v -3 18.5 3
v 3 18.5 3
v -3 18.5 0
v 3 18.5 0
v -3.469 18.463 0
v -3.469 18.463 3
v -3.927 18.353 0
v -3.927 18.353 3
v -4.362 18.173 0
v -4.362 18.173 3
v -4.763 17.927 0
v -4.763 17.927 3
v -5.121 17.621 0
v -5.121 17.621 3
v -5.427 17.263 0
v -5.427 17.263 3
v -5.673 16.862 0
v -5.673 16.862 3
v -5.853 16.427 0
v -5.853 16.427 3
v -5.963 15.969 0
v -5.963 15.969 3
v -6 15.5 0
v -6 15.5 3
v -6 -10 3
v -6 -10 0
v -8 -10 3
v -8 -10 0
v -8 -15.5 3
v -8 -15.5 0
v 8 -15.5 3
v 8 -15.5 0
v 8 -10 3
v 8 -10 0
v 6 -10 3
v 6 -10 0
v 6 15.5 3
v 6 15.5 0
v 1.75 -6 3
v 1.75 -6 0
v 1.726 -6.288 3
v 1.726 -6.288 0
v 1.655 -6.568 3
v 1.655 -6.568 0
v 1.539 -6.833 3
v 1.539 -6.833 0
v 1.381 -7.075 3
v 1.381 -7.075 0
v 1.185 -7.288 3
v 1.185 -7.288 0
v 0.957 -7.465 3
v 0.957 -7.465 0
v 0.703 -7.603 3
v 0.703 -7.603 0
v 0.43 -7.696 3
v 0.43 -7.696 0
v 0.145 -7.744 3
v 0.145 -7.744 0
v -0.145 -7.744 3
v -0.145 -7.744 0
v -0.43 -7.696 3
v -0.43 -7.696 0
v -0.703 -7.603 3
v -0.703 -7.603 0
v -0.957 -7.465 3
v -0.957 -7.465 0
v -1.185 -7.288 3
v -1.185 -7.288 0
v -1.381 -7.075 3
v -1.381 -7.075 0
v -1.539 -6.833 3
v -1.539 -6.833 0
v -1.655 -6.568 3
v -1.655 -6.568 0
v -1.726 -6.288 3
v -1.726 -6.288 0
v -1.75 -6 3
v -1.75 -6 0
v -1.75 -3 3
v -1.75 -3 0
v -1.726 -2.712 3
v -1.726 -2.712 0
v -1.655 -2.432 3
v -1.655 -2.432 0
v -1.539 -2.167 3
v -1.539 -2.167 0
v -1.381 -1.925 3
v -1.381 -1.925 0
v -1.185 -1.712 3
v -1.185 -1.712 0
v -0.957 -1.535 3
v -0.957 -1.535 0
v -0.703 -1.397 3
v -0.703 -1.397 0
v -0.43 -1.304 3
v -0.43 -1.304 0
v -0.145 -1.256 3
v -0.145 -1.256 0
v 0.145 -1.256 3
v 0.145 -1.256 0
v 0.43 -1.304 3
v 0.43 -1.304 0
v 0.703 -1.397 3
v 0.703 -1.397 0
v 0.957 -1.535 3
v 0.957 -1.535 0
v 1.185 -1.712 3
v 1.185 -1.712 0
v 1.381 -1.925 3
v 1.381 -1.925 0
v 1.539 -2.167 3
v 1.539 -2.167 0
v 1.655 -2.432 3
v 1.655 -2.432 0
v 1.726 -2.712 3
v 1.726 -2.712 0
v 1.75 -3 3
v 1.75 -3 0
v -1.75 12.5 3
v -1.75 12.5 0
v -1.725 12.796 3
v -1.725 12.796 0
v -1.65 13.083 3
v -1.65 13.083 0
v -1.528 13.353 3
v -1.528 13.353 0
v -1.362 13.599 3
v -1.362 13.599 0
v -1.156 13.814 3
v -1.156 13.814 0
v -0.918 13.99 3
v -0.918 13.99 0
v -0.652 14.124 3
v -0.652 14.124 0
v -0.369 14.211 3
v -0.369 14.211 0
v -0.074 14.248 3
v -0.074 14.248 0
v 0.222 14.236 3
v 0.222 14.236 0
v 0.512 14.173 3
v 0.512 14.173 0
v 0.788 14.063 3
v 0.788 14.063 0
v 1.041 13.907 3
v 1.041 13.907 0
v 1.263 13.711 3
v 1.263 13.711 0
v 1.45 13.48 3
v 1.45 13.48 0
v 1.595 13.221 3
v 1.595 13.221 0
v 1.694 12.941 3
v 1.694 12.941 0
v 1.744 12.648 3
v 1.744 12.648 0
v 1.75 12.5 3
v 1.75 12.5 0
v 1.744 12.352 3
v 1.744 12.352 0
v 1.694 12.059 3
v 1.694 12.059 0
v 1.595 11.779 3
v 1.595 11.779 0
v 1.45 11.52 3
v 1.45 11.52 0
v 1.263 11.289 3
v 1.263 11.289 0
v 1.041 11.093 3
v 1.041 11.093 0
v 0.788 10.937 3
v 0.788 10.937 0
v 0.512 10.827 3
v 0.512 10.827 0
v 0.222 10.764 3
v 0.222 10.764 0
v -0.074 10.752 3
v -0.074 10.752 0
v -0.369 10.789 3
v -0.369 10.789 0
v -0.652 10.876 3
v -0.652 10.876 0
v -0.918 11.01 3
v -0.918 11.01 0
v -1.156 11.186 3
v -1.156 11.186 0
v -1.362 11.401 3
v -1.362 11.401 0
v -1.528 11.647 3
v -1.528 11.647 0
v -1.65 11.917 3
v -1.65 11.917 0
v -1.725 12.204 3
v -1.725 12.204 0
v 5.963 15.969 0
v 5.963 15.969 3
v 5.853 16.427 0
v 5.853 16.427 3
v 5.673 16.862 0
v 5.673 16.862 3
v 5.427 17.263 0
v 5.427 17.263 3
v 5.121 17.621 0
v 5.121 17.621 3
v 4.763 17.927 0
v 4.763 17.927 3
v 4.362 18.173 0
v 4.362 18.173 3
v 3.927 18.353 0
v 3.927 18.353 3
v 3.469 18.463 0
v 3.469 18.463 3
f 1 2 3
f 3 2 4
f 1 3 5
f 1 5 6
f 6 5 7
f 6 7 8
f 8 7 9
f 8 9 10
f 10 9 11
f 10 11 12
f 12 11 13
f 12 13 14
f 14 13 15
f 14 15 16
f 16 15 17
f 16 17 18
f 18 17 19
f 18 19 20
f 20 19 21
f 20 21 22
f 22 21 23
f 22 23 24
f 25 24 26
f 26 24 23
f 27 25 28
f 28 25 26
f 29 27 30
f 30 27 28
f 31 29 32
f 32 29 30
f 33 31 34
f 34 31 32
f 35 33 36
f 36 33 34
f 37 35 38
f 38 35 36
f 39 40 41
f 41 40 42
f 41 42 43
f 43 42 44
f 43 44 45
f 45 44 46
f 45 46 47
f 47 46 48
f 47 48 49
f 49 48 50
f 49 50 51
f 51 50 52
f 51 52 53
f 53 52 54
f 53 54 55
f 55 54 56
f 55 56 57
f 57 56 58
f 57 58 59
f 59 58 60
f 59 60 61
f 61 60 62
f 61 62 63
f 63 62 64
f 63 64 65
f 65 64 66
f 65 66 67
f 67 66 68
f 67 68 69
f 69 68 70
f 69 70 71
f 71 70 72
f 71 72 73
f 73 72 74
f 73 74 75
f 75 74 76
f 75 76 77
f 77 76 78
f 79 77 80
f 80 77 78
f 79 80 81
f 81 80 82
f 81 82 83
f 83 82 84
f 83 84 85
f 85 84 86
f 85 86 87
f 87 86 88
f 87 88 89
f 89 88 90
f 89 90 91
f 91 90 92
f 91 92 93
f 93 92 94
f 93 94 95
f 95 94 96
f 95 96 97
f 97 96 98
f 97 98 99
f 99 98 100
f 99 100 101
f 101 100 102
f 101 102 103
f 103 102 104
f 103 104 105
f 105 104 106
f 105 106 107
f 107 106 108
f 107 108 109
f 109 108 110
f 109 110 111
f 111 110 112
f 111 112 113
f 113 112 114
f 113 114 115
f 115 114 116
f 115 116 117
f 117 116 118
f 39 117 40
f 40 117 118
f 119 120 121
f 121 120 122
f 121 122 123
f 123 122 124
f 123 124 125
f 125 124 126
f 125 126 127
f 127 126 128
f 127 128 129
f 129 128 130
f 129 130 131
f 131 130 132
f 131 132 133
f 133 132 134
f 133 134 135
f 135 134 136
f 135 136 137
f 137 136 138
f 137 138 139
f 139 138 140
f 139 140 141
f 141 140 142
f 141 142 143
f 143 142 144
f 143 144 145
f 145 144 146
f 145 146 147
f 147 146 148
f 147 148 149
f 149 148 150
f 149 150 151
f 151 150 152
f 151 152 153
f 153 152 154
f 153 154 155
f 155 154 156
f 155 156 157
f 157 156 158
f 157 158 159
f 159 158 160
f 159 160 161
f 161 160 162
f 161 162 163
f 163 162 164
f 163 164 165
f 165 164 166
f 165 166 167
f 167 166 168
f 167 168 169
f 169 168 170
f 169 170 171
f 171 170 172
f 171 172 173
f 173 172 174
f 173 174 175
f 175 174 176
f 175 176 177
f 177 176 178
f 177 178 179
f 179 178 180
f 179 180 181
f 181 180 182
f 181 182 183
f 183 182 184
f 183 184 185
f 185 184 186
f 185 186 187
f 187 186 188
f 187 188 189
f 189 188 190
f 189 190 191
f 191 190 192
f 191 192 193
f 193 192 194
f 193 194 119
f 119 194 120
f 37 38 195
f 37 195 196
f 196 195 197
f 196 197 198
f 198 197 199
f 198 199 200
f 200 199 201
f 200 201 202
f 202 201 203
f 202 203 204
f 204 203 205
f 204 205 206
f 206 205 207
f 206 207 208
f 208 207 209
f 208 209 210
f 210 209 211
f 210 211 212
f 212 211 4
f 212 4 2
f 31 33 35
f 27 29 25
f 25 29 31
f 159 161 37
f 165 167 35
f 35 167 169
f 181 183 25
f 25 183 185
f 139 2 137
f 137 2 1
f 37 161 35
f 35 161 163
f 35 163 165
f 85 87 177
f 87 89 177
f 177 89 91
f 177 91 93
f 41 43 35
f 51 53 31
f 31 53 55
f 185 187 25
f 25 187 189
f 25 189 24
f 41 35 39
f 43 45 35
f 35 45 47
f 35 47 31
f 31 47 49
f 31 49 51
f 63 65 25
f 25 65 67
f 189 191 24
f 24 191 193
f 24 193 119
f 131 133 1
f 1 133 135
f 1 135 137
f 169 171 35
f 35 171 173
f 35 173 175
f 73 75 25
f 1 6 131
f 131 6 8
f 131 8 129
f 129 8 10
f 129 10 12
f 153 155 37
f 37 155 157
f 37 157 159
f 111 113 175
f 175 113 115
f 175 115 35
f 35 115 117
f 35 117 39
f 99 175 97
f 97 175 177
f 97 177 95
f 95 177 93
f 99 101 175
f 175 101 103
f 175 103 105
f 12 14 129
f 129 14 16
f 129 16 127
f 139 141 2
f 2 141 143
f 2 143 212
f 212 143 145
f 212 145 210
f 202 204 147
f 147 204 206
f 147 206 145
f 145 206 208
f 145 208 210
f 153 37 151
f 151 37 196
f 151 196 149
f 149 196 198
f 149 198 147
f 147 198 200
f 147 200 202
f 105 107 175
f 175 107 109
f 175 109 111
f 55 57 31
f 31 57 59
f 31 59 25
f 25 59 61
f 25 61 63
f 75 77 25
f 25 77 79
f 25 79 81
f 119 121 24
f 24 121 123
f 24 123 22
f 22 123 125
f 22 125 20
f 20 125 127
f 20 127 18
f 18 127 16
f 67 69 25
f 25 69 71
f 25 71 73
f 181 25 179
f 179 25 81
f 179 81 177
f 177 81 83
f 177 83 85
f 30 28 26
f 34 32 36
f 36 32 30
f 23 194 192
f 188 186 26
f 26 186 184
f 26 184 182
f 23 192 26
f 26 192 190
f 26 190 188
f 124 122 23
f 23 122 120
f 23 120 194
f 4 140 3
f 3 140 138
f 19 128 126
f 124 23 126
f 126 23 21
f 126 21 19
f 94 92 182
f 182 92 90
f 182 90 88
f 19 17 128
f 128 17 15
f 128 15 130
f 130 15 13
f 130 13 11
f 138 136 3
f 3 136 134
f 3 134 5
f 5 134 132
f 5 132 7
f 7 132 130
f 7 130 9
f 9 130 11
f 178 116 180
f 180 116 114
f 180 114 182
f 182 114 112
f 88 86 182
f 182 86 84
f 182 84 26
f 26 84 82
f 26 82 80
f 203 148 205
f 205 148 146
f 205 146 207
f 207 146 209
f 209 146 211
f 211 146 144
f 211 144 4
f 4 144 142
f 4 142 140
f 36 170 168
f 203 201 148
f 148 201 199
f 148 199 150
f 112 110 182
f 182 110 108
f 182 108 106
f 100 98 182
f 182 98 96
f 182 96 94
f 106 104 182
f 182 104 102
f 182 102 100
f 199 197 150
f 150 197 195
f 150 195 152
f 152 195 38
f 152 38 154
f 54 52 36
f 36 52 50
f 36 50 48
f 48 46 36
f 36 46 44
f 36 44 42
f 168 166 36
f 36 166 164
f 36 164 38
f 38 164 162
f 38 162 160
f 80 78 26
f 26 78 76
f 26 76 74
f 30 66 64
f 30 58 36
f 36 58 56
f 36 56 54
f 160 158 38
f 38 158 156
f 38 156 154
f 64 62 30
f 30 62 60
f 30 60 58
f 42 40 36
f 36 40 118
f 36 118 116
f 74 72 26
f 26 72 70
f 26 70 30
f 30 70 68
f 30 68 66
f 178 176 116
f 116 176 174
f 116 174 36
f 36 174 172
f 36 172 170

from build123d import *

# Parameters (mm, degrees)
SKETCH1_R           = 1.75
SKETCH1_W           = 16
SKETCH1_H           = 5.5
BOSS_EXTRUDE1_DEPTH = 3


with BuildPart() as part:
    # Sketch1 → Boss-Extrude1 (new body)
    # profile 1 of 2: a face of its own
    with BuildSketch(Plane.XY):
        with BuildLine():
            Line((-3, 18.5), (3, 18.5))
            ThreePointArc((3, 18.5), (5.121320344, 17.621320344), (6, 15.5))
            Line((6, 15.5), (6, -15.5))
            Line((6, -15.5), (-6, -15.5))
            Line((-6, -15.5), (-6, 15.5))
            ThreePointArc((-6, 15.5), (-5.121320344, 17.621320344), (-3, 18.5))
        make_face()
        with Locations((0, 12.5)):
            Circle(SKETCH1_R, mode=Mode.SUBTRACT)
        with BuildLine():
            Line((1.75, -3), (1.75, -6))
            ThreePointArc((1.75, -6), (0, -7.75), (-1.75, -6))
            Line((-1.75, -6), (-1.75, -3))
            ThreePointArc((-1.75, -3), (0, -1.25), (1.75, -3))
        make_face(mode=Mode.SUBTRACT)
    # profile 2 of 2: a face of its own
    with BuildSketch(Plane.XY):
        with Locations((0, -12.75)):
            Rectangle(SKETCH1_W, SKETCH1_H)
    extrude(amount=BOSS_EXTRUDE1_DEPTH)


solid = part.part
